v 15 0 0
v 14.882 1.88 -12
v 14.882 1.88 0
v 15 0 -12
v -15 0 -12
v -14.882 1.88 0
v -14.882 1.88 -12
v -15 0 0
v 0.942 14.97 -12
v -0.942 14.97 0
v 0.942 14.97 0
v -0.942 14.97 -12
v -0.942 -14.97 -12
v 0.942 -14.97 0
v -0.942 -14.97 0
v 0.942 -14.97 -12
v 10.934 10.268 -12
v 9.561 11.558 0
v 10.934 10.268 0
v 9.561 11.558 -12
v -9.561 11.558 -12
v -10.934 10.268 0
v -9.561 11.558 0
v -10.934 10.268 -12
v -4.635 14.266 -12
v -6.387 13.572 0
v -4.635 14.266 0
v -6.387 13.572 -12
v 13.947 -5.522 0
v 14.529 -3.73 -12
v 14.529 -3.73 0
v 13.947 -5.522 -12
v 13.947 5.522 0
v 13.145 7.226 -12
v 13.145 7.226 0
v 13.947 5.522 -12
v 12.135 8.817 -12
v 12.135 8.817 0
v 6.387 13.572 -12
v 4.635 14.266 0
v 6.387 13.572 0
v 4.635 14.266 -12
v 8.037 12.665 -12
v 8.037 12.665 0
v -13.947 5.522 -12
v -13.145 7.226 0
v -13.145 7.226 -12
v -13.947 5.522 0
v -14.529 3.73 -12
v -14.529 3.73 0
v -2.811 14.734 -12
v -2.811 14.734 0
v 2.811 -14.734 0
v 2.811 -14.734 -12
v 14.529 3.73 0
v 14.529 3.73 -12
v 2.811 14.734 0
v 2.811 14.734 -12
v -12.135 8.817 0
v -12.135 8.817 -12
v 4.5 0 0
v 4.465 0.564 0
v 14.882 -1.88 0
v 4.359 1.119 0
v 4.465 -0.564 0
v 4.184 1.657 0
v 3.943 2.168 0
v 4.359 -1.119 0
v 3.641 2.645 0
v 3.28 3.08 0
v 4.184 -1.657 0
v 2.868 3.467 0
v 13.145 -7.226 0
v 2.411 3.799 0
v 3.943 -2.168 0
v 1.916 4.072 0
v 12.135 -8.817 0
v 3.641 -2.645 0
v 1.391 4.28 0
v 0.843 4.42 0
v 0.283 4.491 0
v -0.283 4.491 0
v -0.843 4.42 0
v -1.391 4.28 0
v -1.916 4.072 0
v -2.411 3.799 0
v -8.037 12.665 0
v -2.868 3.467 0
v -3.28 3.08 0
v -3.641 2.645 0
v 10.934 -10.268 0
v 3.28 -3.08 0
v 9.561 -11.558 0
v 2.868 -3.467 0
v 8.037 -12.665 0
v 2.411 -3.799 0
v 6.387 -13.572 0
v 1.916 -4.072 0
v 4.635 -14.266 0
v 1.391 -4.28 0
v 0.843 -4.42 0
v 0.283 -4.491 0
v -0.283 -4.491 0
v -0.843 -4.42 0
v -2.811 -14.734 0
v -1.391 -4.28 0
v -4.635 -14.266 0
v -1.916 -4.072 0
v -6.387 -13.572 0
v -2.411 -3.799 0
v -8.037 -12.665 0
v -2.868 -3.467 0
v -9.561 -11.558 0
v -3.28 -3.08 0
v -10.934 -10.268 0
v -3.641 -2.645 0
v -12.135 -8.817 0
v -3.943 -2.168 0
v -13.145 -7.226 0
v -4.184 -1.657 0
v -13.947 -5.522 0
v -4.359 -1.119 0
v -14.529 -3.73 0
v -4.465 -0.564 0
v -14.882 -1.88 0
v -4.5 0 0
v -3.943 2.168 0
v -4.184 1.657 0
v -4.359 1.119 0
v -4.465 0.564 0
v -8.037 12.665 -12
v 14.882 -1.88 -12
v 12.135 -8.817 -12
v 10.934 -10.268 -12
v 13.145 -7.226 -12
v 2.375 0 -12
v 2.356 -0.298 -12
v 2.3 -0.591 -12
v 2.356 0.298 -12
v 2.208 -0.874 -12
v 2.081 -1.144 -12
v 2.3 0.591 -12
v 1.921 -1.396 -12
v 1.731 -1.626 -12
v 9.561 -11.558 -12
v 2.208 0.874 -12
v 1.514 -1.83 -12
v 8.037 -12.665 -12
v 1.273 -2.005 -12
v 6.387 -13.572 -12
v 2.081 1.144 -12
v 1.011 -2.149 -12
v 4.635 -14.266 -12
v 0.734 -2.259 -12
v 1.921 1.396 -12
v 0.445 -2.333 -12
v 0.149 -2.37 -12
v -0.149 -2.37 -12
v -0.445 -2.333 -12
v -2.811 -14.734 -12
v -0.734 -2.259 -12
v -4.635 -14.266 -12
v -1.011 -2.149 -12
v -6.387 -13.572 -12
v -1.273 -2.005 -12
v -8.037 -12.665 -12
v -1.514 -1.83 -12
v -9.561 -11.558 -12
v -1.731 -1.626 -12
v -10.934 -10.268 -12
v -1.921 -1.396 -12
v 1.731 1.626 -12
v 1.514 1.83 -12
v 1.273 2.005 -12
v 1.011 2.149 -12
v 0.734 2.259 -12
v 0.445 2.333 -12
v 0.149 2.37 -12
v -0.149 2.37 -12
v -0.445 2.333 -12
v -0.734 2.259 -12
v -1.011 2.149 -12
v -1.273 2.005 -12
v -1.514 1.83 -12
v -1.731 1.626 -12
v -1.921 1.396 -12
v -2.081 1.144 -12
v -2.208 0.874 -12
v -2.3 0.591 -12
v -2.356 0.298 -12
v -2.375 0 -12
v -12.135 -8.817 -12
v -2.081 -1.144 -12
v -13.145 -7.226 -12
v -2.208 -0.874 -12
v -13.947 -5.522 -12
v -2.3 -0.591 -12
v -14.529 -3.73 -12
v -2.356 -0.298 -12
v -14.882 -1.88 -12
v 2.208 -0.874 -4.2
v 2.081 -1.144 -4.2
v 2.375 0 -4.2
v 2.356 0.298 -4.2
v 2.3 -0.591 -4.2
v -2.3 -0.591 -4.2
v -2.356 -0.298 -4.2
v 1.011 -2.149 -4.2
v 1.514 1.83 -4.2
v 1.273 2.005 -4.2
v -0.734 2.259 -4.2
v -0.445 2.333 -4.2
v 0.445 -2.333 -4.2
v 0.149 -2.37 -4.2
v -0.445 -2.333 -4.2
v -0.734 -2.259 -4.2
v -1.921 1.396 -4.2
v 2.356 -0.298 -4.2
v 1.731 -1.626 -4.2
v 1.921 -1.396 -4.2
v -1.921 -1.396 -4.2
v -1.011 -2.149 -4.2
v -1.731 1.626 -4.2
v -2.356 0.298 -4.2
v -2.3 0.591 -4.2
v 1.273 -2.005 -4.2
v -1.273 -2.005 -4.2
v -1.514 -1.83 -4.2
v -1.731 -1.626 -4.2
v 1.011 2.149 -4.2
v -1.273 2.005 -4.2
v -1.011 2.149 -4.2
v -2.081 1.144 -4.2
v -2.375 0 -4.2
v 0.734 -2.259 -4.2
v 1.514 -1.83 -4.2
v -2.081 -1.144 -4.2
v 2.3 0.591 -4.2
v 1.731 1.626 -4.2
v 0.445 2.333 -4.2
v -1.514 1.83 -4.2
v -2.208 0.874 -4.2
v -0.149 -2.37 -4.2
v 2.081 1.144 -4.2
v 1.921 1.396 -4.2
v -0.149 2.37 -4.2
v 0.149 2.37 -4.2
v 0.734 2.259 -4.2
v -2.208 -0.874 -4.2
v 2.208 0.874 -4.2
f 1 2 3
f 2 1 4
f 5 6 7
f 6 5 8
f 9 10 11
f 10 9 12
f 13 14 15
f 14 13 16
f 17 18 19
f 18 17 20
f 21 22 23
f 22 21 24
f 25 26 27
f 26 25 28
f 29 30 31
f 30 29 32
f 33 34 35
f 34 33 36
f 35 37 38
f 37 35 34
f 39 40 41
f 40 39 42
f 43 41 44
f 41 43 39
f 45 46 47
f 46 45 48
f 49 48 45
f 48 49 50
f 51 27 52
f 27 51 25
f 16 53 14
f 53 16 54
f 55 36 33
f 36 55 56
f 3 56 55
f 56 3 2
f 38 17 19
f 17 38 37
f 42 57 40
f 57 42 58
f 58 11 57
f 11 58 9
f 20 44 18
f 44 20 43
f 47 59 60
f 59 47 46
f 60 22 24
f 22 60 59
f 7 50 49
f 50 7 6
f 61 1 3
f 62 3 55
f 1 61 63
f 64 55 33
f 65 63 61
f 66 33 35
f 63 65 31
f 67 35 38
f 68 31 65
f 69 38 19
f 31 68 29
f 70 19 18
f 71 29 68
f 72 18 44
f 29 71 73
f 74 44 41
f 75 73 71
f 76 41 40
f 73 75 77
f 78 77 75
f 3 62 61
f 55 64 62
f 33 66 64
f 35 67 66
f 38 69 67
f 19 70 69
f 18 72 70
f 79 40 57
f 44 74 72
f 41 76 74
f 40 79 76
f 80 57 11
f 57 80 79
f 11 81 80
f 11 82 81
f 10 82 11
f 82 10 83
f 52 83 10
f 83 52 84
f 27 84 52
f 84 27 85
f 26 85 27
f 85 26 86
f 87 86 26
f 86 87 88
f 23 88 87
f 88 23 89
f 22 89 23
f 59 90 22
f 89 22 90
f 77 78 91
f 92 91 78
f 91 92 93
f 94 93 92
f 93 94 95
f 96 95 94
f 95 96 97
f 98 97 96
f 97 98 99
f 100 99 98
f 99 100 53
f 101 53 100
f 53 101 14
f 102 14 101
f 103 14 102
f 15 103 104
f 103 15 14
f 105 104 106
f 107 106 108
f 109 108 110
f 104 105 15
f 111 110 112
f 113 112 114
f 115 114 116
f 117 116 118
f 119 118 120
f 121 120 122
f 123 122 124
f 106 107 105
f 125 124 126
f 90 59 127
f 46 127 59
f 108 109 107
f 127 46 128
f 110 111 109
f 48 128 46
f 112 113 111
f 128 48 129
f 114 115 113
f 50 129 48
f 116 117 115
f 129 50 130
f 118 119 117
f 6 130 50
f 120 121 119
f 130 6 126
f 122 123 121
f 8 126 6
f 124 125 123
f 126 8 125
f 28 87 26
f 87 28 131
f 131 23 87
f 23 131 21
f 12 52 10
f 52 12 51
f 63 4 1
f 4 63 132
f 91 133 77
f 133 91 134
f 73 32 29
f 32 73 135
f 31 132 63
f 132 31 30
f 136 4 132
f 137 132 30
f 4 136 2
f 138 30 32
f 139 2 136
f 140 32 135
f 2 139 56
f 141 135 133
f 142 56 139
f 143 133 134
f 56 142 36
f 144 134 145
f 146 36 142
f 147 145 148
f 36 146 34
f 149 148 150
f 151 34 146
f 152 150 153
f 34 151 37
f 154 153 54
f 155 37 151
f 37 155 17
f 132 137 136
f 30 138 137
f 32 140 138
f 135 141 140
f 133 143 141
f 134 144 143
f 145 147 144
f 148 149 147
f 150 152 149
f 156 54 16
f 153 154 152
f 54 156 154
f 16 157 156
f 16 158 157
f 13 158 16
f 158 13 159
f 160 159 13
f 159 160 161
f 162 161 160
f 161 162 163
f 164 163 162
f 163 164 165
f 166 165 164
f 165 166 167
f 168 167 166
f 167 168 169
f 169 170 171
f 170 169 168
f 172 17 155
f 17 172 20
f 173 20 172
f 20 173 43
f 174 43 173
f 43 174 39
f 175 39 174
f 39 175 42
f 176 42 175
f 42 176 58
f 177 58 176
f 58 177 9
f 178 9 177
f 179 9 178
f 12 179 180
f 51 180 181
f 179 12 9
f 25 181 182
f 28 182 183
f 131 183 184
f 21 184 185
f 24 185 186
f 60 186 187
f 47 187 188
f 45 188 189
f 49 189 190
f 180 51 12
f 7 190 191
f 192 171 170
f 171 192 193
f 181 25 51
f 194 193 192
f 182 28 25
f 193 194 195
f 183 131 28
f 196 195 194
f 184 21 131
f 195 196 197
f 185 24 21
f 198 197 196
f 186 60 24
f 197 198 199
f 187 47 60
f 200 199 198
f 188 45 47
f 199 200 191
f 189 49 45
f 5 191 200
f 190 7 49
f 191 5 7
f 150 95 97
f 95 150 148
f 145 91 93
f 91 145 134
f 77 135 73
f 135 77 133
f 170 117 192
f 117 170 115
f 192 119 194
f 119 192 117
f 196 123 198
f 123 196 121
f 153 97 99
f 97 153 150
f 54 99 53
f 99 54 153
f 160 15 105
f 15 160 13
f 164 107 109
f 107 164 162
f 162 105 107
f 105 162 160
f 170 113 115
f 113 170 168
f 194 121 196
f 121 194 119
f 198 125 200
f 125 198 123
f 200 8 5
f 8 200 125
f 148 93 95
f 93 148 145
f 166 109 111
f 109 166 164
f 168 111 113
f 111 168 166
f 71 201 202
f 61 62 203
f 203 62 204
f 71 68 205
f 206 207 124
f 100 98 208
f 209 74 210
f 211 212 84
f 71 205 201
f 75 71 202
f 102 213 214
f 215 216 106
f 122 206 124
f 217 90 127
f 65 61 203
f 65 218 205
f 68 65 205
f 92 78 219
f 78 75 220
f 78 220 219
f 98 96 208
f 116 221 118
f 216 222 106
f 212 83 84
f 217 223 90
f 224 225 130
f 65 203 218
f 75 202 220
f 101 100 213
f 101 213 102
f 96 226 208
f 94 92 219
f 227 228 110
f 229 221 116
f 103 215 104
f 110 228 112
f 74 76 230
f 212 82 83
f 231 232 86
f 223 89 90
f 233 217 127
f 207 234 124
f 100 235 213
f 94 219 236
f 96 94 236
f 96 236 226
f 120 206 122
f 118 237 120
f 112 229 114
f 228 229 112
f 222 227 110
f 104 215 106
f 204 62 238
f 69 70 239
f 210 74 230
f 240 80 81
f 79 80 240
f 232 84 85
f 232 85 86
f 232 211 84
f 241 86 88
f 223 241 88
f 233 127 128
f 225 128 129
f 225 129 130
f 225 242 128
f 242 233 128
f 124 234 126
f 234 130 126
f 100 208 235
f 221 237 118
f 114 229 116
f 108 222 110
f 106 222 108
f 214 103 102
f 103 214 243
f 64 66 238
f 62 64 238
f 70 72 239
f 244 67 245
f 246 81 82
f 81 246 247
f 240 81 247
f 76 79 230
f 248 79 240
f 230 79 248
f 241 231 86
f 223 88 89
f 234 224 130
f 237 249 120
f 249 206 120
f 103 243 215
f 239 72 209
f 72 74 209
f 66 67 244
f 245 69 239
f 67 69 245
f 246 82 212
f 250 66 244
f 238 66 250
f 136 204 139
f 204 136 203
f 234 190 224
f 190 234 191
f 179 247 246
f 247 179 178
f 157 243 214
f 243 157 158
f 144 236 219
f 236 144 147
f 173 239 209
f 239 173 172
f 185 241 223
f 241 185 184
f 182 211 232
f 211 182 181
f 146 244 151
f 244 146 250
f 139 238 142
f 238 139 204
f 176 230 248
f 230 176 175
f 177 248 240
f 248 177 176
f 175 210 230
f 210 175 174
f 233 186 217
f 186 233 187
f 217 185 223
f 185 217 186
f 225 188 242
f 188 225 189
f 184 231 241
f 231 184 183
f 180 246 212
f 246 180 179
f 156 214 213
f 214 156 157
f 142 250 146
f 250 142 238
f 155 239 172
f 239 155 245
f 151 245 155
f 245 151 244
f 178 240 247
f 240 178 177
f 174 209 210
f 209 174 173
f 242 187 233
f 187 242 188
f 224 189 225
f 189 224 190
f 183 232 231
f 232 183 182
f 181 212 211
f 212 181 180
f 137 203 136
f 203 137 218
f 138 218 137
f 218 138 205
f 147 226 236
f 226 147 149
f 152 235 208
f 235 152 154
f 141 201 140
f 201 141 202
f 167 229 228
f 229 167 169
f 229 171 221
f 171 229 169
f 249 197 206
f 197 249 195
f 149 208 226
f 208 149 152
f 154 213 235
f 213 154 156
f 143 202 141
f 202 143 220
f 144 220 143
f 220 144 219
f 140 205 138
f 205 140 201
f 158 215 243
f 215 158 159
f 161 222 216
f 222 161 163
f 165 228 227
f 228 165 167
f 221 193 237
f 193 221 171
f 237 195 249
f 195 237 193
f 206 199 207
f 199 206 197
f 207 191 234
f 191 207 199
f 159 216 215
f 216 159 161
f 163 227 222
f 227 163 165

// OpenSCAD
$fn = 50;


difference() {
	union() {
		translate(v = [0, 0, -12.0000000000]) {
			cylinder(h = 12, r = 15.0000000000);
		}
		translate(v = [0, 0, -12.0000000000]) {
			cylinder(h = 12, r = 2.8750000000);
		}
	}
	union() {
		translate(v = [0, 0, 0]) {
			rotate(a = [0, 0, 0]) {
				difference() {
					union() {
						translate(v = [0, 0, -12.0000000000]) {
							cylinder(h = 12, r = 2.2500000000);
						}
						translate(v = [0, 0, -4.2000000000]) {
							cylinder(h = 4.2000000000, r1 = 2.3750000000, r2 = 4.5000000000);
						}
						translate(v = [0, 0, -12.0000000000]) {
							cylinder(h = 12, r = 2.3750000000);
						}
						translate(v = [0, 0, -12.0000000000]) {
							cylinder(h = 12, r = 2.2500000000);
						}
					}
					union();
				}
			}
		}
	}
}
